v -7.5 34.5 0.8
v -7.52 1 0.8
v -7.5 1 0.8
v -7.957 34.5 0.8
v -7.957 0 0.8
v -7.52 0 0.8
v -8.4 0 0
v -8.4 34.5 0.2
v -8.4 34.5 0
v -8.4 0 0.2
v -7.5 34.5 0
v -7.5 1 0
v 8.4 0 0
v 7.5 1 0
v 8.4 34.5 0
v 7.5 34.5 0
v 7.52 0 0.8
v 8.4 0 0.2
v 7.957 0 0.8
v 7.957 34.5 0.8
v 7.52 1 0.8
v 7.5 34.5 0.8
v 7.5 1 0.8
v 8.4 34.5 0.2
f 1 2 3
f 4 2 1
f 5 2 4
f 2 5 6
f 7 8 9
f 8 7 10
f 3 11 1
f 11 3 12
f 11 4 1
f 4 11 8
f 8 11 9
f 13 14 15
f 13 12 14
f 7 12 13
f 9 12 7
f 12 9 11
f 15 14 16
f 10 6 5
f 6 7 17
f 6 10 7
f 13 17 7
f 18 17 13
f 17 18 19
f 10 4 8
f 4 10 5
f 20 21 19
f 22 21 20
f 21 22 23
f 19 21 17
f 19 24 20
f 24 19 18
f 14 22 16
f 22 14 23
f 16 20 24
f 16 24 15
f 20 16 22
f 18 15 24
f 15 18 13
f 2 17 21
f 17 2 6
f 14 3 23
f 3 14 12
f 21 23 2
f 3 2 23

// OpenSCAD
// Open-backed adapter for the previously printed, original-width Multipoint shelf.
// Reference: supplied Pegboard Click Multipoint Rail (Supported), 14.8 x 41 mm.
// Connected-frame concept informed by the supplied Fold-In Locked Lite Rail.
// This is a new measured adapter, not a copy of the Fold-In mating profile.
// Print flat as exported. Fit the frame around the wide rail face, bridge below
// the lower end, then slide the shelf down over the rail and frame together.
/* [Fit] */
// Horizontal clearance PER SIDE to the 14.8 mm rail.
railClearance = 0.10; // [0.05:0.05:0.2]
// Horizontal clearance PER SIDE to the original 17 mm Multipoint channel.
shelfClearance = 0.10; // [0.05:0.05:0.2]
// Thickness perpendicular to the wide face. Avoid the channel's narrow waist.
shimDepth = 0.8; // [0.6:0.1:0.8]
/* [Hidden] */
railHalfWidth=7.4;
channelHalfWidth=8.5;
channelTaperStart=0.2;
channelTaperSlope=(8.5-6.875)/2.2;
lengthBelowUpperCentre=34.5;
bridgeLength=1;
inner=railHalfWidth+railClearance;
outer=channelHalfWidth-shelfClearance;
outerTip=outer-(shimDepth-channelTaperStart)*channelTaperSlope;
assert(railClearance>=0.05 && shelfClearance>=0.05,"Use positive mating clearances of at least 0.05 mm.");
assert(shimDepth>=0.6 && shimDepth<=0.8,"Keep shim depth between 0.6 and 0.8 mm.");
assert(outerTip-inner>=0.4,"Less than 0.4 mm remains at the strip tip; reduce clearances or shim depth.");
module adapter() {
    union() {
        for(side=[-1,1]) scale([side,1,1])
            translate([0,lengthBelowUpperCentre,0]) rotate([90,0,0])
                linear_extrude(height=lengthBelowUpperCentre)
                    polygon([[inner,0],[outer,0],[outer,channelTaperStart],
                             [outerTip,shimDepth],[inner,shimDepth]]);
        translate([-inner-0.02,0,0]) cube([2*inner+0.04,bridgeLength,shimDepth]);
    }
}
echo(width_mm=2*outer,length_mm=lengthBelowUpperCentre,depth_mm=shimDepth,
     minimum_side_strip_mm=outerTip-inner);
adapter();
